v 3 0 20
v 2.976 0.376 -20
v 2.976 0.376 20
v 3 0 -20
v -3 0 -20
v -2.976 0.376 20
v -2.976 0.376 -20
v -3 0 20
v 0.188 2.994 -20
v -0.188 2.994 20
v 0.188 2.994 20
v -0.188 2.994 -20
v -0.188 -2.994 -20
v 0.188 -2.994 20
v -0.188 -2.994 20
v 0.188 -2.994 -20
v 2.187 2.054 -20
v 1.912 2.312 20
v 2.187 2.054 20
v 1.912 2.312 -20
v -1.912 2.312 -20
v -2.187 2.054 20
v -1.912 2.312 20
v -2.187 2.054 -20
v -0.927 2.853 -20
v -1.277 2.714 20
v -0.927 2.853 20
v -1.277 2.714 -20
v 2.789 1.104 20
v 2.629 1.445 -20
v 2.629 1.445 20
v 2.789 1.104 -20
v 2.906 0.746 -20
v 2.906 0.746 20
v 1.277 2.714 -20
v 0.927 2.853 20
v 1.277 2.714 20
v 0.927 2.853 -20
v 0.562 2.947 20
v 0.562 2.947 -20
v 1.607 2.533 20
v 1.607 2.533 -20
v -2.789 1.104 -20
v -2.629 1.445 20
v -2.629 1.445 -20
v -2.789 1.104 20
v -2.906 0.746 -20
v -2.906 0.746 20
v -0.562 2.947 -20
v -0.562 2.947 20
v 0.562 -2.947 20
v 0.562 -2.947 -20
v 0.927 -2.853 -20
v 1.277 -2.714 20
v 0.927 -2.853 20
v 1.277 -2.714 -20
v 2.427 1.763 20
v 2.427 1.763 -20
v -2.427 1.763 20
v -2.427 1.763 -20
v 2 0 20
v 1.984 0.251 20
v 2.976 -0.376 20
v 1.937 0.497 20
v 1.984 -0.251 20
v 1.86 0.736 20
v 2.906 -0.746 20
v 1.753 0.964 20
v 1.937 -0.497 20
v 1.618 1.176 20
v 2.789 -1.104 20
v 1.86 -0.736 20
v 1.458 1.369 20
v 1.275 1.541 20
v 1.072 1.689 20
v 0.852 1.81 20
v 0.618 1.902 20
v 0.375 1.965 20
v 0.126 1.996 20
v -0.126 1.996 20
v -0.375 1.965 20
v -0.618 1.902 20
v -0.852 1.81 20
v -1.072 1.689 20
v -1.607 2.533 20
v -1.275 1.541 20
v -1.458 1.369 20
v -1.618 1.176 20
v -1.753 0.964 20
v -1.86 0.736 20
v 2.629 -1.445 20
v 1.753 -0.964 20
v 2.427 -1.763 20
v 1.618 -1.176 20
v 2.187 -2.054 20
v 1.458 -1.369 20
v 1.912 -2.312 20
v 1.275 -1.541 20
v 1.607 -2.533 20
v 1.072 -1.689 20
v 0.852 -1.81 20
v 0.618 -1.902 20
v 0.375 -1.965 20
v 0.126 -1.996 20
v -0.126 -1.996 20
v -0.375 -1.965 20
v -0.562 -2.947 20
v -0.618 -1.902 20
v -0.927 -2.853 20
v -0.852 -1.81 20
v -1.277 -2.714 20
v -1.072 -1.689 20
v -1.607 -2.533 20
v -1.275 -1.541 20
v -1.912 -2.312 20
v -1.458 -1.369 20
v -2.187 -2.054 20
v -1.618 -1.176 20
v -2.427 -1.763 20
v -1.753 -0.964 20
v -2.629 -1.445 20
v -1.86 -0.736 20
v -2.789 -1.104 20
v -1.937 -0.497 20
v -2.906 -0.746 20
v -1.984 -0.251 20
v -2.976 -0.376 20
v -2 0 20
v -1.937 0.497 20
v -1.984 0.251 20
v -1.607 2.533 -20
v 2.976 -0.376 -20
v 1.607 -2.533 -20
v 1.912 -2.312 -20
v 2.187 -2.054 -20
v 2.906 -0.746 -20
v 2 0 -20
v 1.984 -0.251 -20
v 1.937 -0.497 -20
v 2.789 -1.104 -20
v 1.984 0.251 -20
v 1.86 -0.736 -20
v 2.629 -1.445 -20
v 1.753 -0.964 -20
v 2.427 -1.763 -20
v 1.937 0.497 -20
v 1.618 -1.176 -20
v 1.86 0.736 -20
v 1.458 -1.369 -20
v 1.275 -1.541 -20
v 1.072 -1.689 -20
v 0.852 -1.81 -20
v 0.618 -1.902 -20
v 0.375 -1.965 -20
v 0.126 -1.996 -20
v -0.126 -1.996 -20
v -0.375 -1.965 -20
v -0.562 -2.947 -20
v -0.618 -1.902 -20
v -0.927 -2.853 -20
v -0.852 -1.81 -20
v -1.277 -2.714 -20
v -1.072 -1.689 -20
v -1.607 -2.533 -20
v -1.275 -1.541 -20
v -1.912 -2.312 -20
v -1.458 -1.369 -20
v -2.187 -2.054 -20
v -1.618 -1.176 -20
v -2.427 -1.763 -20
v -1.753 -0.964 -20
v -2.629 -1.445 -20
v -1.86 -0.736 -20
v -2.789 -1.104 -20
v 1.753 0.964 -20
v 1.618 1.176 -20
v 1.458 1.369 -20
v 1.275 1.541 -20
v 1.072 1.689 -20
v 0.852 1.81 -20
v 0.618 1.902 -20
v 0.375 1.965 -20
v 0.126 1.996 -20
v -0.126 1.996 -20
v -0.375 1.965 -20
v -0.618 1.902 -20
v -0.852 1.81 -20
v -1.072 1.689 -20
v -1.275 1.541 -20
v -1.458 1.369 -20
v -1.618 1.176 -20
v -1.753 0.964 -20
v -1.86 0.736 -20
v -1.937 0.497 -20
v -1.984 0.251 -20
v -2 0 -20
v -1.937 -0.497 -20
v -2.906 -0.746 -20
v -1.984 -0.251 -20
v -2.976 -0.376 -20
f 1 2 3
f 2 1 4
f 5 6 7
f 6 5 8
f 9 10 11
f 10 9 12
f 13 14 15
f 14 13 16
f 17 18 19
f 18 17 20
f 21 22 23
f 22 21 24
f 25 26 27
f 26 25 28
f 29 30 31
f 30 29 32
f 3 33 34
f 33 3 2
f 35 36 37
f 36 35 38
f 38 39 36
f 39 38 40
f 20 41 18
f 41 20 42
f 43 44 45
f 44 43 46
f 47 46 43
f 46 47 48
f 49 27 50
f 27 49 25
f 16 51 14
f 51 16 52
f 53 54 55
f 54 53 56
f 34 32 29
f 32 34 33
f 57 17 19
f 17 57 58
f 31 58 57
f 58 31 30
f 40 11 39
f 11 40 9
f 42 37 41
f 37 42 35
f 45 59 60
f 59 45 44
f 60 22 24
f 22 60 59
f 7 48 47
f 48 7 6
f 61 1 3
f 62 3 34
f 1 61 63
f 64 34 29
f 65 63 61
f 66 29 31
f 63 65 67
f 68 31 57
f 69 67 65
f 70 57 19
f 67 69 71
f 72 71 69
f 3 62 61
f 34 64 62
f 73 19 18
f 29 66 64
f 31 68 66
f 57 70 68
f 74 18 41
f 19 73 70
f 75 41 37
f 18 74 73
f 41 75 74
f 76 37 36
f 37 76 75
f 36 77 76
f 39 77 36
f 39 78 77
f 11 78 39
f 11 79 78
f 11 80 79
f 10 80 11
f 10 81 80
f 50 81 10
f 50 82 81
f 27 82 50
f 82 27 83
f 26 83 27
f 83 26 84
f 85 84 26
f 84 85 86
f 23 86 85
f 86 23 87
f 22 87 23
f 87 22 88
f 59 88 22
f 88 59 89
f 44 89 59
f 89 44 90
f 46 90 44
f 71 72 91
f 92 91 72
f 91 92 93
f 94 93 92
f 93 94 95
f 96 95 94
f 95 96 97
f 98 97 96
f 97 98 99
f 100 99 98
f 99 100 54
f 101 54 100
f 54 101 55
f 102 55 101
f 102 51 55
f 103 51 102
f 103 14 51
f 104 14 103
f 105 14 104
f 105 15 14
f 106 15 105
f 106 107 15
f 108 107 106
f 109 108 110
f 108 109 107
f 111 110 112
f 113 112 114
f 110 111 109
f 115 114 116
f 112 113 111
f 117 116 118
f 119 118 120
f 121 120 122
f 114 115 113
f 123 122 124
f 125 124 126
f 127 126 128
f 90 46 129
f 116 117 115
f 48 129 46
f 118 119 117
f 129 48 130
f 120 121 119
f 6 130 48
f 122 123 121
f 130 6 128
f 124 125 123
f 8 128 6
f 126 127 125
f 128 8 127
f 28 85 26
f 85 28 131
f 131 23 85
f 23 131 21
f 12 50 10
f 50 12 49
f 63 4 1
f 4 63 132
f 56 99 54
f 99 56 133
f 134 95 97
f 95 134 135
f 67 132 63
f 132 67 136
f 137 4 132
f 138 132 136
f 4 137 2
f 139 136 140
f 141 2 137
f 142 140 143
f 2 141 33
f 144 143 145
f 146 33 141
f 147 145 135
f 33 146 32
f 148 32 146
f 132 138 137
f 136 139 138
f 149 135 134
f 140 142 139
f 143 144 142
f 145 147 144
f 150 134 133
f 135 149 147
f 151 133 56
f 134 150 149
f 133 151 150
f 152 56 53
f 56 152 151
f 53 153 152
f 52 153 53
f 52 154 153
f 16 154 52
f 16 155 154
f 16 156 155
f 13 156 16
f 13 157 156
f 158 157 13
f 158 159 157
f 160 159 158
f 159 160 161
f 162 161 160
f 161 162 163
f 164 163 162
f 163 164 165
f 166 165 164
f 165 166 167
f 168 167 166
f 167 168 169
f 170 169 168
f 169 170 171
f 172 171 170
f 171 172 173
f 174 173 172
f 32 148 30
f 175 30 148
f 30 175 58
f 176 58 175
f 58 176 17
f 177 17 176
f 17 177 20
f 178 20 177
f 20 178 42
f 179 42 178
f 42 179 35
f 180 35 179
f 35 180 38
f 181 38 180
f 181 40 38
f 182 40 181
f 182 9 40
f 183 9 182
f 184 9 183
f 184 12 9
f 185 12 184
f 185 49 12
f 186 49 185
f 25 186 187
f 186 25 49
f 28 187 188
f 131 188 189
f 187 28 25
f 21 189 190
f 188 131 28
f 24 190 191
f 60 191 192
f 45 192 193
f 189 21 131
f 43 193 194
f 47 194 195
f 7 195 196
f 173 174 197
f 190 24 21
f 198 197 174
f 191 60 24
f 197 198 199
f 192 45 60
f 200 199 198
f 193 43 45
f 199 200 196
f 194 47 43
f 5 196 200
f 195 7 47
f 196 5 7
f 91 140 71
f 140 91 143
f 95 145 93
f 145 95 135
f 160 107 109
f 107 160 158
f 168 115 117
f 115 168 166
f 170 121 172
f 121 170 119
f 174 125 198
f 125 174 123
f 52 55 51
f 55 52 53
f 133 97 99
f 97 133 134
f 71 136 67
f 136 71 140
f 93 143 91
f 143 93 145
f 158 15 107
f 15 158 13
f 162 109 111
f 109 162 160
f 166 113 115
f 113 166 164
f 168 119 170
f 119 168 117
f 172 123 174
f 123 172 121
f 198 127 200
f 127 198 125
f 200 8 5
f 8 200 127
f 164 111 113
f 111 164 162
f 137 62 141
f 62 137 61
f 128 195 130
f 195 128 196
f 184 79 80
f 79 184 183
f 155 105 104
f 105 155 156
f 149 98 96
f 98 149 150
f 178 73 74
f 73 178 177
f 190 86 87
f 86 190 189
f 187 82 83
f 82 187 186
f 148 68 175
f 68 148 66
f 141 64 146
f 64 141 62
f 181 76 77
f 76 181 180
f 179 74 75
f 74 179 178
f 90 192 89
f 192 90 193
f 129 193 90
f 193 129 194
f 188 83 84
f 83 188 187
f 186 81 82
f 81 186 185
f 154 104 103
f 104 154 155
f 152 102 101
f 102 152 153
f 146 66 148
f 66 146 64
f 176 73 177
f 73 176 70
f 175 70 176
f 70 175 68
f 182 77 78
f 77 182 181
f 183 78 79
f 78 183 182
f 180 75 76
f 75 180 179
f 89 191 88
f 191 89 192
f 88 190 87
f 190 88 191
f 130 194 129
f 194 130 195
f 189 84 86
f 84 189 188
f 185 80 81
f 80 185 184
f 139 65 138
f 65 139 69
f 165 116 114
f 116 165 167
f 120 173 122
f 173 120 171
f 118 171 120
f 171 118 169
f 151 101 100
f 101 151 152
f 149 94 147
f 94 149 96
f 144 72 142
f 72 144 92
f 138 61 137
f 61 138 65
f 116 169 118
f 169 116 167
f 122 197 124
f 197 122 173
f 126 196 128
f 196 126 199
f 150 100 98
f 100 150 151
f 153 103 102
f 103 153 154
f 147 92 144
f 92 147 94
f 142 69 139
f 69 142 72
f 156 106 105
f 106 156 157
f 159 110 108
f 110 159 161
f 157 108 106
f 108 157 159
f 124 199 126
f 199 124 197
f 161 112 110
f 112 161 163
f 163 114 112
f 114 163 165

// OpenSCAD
$fn = 50;


difference() {
	union() {
		translate(v = [0, 0, -20.0000000000]) {
			cylinder(h = 40, r = 3.0000000000);
		}
	}
	union() {
		translate(v = [0, 0, -100.0000000000]) {
			cylinder(h = 200, r = 2);
		}
	}
}
